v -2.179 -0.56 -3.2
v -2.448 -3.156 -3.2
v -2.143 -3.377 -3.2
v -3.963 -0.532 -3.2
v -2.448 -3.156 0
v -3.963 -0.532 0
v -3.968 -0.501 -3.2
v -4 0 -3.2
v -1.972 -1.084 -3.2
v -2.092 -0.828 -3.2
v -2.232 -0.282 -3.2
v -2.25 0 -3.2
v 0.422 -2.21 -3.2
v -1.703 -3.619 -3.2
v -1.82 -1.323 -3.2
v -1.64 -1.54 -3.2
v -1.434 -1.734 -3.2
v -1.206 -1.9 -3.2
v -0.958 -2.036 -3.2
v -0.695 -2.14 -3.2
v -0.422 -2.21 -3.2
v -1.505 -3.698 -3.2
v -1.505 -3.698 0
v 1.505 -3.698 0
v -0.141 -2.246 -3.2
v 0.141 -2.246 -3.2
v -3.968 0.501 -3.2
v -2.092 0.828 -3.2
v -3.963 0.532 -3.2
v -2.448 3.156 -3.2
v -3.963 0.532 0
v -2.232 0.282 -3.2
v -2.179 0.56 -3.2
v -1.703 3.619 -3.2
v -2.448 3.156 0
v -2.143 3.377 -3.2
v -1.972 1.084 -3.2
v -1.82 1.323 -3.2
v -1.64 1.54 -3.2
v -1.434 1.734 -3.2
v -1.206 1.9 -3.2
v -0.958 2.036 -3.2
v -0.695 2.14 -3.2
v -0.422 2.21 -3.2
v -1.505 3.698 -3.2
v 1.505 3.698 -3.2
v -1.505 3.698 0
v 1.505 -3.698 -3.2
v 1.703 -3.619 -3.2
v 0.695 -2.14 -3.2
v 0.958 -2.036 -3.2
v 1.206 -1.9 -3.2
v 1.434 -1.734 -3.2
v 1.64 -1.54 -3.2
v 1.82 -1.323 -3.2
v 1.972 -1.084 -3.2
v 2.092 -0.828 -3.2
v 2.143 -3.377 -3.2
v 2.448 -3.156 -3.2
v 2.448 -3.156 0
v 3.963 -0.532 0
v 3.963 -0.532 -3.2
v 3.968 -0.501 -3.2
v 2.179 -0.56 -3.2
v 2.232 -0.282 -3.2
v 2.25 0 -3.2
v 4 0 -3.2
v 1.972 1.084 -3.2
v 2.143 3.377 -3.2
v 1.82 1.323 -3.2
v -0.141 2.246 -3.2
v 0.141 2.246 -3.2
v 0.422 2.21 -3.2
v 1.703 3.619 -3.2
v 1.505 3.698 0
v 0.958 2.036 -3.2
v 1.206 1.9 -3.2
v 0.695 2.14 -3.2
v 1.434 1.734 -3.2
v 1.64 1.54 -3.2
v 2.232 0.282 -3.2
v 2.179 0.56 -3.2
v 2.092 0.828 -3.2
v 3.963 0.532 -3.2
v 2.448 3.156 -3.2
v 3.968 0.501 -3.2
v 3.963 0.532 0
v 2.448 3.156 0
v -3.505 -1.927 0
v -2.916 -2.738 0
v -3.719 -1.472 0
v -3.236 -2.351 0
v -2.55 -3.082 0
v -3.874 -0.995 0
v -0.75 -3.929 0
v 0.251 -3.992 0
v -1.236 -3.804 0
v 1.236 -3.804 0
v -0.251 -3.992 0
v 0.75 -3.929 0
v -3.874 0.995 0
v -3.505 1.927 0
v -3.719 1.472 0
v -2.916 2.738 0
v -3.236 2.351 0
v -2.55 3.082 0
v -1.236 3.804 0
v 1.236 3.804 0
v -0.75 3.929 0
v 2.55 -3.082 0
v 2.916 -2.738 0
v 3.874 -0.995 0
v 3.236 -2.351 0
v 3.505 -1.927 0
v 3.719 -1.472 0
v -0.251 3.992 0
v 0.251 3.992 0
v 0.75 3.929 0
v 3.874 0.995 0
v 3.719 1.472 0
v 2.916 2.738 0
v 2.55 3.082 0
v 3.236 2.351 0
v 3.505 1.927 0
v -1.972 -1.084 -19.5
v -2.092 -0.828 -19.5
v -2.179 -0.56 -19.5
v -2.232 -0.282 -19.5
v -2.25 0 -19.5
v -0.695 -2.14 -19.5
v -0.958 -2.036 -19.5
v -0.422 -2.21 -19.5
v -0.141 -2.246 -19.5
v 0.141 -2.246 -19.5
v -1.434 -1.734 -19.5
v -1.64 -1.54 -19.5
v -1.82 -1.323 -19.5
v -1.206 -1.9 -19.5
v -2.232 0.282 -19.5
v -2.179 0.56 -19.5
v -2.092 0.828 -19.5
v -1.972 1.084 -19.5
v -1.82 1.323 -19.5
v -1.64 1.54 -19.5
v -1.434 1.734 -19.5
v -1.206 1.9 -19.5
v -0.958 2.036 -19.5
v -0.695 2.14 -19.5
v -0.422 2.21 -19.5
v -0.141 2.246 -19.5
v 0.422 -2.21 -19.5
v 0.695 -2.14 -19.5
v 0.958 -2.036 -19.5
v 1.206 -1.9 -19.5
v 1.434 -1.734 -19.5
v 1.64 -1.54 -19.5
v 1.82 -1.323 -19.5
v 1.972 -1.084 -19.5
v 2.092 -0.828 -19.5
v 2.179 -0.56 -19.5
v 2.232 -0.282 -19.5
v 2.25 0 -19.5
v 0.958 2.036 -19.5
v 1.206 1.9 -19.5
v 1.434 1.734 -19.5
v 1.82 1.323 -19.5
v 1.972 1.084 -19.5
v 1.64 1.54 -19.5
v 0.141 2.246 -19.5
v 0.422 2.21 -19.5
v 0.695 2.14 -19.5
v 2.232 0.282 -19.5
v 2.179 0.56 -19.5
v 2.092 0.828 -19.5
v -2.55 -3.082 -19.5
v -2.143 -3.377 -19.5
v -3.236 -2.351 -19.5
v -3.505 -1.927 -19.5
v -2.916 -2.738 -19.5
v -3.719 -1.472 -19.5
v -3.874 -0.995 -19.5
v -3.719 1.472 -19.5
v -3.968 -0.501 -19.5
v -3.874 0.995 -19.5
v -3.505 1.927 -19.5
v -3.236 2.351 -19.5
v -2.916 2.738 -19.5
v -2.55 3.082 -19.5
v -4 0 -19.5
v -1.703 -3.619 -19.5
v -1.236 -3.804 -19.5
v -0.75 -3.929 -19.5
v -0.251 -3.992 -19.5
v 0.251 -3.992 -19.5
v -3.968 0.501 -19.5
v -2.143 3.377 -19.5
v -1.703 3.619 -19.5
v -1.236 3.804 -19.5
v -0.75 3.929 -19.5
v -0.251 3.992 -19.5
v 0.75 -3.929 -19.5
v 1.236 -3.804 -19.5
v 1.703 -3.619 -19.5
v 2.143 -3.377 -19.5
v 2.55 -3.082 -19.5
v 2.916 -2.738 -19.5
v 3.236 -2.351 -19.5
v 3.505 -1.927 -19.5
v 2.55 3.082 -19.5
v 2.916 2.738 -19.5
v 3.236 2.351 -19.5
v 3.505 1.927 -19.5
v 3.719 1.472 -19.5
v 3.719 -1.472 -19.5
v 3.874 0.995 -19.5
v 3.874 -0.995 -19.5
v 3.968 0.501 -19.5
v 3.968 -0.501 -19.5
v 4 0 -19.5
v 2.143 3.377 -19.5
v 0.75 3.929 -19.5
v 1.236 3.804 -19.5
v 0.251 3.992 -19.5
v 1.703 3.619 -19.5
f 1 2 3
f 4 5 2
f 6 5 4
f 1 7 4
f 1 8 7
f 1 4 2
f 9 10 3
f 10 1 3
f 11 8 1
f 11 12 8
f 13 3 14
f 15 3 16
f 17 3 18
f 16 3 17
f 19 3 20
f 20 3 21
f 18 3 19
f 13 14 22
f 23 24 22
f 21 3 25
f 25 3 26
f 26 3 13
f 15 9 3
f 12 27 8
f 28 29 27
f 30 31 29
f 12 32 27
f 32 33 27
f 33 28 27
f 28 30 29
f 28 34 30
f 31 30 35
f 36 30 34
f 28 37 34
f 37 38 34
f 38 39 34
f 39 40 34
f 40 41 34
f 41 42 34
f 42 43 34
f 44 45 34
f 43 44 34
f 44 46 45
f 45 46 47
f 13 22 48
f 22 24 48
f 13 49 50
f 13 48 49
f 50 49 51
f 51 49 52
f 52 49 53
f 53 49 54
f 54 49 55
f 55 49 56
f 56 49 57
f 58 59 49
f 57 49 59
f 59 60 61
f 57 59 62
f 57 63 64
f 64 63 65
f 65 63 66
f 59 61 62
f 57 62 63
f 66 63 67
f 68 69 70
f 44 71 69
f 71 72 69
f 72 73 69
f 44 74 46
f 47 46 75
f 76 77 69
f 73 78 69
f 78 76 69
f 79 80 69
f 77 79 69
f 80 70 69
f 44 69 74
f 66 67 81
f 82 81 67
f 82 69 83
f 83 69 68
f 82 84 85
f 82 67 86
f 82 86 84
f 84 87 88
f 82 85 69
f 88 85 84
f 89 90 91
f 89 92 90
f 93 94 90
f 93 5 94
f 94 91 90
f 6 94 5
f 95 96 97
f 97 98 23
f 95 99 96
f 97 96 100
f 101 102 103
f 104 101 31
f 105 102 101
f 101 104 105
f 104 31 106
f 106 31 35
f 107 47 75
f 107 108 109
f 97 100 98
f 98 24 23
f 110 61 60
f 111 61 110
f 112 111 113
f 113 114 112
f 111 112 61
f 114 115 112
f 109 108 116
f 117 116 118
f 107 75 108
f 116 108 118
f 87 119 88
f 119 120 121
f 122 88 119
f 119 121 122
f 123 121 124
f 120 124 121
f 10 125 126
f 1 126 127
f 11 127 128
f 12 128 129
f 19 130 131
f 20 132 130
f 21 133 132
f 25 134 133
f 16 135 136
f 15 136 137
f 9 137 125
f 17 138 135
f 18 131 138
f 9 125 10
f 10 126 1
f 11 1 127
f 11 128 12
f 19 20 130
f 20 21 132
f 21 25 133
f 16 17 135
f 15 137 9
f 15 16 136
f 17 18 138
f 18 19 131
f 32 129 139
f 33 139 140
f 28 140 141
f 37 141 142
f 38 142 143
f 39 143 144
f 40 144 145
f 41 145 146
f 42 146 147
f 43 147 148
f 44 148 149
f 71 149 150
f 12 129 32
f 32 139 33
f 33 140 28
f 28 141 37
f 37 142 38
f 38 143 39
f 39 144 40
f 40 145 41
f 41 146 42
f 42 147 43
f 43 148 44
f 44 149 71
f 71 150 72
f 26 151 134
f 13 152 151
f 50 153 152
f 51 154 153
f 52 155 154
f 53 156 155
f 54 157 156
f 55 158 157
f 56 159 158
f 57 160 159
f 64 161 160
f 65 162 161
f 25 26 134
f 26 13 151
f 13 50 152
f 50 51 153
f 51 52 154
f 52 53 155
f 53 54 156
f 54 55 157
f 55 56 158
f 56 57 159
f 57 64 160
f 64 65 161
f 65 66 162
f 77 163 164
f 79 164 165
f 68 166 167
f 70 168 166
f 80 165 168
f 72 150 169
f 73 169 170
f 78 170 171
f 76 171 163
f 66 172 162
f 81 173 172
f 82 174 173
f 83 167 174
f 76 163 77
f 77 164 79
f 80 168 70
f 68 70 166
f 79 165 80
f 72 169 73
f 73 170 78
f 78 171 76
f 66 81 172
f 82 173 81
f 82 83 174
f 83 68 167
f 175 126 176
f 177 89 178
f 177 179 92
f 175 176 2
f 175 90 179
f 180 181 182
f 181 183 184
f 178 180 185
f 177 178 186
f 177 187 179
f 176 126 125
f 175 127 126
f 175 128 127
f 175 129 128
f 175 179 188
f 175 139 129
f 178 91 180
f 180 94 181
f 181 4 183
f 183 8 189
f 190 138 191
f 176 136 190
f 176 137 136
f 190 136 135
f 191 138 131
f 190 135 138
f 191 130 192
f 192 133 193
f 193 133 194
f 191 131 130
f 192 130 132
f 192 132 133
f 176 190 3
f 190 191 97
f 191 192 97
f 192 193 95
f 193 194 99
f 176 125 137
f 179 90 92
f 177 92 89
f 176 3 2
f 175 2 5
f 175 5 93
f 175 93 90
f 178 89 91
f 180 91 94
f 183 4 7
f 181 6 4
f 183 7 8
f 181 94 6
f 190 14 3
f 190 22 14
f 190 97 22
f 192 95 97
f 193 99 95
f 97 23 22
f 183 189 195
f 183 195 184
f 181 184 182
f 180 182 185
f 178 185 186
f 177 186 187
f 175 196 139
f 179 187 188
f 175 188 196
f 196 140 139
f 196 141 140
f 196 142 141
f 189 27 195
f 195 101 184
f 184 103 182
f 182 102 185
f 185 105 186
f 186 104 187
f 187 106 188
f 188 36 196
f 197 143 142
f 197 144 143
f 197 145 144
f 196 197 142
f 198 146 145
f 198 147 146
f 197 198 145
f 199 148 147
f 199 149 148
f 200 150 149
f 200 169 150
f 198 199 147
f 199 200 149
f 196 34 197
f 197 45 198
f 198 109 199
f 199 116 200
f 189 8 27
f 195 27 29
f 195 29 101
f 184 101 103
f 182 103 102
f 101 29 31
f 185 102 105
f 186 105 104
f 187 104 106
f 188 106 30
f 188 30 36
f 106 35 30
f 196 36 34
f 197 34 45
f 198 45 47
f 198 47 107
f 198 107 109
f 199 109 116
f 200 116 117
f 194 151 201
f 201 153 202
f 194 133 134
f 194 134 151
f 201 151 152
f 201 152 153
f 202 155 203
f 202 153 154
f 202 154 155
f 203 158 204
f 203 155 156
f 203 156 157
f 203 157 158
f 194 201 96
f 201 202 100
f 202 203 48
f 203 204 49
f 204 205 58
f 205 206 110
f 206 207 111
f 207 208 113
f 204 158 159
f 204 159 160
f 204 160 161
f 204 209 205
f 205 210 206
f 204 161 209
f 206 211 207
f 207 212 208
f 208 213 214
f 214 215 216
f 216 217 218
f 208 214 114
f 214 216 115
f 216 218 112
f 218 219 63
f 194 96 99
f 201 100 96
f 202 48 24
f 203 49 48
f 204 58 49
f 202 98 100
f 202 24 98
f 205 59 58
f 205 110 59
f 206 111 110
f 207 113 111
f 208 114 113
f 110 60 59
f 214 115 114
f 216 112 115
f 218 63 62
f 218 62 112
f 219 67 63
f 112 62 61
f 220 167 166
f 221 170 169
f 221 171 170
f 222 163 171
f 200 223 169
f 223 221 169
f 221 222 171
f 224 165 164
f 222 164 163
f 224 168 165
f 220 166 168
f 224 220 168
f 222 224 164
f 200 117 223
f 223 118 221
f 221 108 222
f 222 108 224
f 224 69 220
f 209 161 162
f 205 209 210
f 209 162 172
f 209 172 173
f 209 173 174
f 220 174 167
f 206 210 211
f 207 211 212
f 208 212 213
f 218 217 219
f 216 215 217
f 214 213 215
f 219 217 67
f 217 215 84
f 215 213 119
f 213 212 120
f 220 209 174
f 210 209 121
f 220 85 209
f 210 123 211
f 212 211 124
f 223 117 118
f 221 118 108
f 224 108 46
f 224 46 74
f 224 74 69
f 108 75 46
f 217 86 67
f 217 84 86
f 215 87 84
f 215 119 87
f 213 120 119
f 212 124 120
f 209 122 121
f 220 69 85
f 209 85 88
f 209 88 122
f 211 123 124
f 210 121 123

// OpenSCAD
$fn = 50;

difference() {
	union() {
		translate(v = [0, 0, -19.5]) {
			cylinder(h = 22.5, r = 4.0);
		}
	}
	union() {
		translate(v = [0, 0, 0]) {
			rotate(a = [0, 0, 0]) {
				difference() {
					union() {
						translate(v = [0, 0, -3.2]) {
							linear_extrude(height = 3.2) {
								polygon(points = [[4.2698, 0.0], [2.1349000000000005, 3.697755269078796], [-2.134899999999999, 3.6977552690787965], [-4.2698, 5.228996902999369e-16], [-2.134900000000002, -3.6977552690787956], [2.1348999999999974, -3.697755269078798]]);
							}
						}
					}
					union();
				}
			}
		}
		#cylinder(h = 3, r = 5.0);
		#translate(v = [0, 0, -100.0]) {
			cylinder(h = 200, r = 2.25);
		}
	}
}
